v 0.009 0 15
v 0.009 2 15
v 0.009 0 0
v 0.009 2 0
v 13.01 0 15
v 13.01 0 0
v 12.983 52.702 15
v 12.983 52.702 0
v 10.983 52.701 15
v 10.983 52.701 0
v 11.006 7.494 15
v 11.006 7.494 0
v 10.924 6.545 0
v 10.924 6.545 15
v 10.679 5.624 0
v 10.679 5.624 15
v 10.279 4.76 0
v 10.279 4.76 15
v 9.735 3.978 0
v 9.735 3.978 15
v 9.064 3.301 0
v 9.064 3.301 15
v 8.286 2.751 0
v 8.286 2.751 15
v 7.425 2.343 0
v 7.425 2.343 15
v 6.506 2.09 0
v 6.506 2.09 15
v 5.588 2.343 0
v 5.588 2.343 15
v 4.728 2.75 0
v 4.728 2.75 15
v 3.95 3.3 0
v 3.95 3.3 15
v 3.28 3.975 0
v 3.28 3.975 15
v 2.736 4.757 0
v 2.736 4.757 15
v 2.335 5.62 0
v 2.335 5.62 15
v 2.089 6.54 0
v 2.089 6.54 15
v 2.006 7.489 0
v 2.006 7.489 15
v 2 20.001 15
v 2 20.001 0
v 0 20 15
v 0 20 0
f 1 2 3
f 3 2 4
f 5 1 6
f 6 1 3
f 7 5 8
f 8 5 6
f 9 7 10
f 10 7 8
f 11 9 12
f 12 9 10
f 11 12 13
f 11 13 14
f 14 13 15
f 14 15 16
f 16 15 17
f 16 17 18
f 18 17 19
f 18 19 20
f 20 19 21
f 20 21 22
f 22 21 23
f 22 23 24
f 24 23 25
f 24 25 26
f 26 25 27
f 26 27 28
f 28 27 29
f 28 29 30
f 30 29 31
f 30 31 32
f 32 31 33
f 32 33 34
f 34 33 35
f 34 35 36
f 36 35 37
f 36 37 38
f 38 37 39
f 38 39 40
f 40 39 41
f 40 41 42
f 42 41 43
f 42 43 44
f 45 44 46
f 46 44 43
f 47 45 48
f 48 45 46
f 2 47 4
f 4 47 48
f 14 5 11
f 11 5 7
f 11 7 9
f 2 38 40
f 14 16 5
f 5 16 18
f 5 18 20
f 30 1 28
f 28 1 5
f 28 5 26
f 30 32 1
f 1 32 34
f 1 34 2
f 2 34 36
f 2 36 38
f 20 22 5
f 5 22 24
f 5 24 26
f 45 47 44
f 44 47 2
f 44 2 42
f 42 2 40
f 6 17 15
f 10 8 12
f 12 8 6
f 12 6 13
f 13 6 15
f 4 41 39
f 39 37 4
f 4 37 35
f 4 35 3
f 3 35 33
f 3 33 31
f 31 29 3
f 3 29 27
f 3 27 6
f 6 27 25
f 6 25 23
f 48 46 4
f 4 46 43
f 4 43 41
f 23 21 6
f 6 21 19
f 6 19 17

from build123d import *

# Parameters (mm, degrees)
BOSS_EXTRUDE1_DEPTH = 15


with BuildPart() as part:
    # Sketch1 → Boss-Extrude1 (new body)
    with BuildSketch(Plane.XY):
        with BuildLine():
            Line((0, 0), (13.001019729, 0))
            Line((13.001019729, 0), (12.974193154, 52.70215653))
            Line((12.974193154, 52.70215653), (10.974193413, 52.701138486))
            Line((10.974193413, 52.701138486), (10.997204677, 7.494352092))
            ThreePointArc((10.997204677, 7.494352092), (9.725689165, 3.977520123), (6.497205517, 2.090259641))
            ThreePointArc((6.497205517, 2.090259641), (3.270511139, 3.975372484), (1.997206357, 7.488761443))
            Line((1.997206357, 7.488761443), (1.99083734, 20.001015713))
            Line((1.99083734, 20.001015713), (-0.009162401, 19.999997668))
            Line((-0.009162401, 19.999997668), (0, 2))
            Line((0, 2), (0, 0))
        make_face()
    extrude(amount=BOSS_EXTRUDE1_DEPTH)


solid = part.part
